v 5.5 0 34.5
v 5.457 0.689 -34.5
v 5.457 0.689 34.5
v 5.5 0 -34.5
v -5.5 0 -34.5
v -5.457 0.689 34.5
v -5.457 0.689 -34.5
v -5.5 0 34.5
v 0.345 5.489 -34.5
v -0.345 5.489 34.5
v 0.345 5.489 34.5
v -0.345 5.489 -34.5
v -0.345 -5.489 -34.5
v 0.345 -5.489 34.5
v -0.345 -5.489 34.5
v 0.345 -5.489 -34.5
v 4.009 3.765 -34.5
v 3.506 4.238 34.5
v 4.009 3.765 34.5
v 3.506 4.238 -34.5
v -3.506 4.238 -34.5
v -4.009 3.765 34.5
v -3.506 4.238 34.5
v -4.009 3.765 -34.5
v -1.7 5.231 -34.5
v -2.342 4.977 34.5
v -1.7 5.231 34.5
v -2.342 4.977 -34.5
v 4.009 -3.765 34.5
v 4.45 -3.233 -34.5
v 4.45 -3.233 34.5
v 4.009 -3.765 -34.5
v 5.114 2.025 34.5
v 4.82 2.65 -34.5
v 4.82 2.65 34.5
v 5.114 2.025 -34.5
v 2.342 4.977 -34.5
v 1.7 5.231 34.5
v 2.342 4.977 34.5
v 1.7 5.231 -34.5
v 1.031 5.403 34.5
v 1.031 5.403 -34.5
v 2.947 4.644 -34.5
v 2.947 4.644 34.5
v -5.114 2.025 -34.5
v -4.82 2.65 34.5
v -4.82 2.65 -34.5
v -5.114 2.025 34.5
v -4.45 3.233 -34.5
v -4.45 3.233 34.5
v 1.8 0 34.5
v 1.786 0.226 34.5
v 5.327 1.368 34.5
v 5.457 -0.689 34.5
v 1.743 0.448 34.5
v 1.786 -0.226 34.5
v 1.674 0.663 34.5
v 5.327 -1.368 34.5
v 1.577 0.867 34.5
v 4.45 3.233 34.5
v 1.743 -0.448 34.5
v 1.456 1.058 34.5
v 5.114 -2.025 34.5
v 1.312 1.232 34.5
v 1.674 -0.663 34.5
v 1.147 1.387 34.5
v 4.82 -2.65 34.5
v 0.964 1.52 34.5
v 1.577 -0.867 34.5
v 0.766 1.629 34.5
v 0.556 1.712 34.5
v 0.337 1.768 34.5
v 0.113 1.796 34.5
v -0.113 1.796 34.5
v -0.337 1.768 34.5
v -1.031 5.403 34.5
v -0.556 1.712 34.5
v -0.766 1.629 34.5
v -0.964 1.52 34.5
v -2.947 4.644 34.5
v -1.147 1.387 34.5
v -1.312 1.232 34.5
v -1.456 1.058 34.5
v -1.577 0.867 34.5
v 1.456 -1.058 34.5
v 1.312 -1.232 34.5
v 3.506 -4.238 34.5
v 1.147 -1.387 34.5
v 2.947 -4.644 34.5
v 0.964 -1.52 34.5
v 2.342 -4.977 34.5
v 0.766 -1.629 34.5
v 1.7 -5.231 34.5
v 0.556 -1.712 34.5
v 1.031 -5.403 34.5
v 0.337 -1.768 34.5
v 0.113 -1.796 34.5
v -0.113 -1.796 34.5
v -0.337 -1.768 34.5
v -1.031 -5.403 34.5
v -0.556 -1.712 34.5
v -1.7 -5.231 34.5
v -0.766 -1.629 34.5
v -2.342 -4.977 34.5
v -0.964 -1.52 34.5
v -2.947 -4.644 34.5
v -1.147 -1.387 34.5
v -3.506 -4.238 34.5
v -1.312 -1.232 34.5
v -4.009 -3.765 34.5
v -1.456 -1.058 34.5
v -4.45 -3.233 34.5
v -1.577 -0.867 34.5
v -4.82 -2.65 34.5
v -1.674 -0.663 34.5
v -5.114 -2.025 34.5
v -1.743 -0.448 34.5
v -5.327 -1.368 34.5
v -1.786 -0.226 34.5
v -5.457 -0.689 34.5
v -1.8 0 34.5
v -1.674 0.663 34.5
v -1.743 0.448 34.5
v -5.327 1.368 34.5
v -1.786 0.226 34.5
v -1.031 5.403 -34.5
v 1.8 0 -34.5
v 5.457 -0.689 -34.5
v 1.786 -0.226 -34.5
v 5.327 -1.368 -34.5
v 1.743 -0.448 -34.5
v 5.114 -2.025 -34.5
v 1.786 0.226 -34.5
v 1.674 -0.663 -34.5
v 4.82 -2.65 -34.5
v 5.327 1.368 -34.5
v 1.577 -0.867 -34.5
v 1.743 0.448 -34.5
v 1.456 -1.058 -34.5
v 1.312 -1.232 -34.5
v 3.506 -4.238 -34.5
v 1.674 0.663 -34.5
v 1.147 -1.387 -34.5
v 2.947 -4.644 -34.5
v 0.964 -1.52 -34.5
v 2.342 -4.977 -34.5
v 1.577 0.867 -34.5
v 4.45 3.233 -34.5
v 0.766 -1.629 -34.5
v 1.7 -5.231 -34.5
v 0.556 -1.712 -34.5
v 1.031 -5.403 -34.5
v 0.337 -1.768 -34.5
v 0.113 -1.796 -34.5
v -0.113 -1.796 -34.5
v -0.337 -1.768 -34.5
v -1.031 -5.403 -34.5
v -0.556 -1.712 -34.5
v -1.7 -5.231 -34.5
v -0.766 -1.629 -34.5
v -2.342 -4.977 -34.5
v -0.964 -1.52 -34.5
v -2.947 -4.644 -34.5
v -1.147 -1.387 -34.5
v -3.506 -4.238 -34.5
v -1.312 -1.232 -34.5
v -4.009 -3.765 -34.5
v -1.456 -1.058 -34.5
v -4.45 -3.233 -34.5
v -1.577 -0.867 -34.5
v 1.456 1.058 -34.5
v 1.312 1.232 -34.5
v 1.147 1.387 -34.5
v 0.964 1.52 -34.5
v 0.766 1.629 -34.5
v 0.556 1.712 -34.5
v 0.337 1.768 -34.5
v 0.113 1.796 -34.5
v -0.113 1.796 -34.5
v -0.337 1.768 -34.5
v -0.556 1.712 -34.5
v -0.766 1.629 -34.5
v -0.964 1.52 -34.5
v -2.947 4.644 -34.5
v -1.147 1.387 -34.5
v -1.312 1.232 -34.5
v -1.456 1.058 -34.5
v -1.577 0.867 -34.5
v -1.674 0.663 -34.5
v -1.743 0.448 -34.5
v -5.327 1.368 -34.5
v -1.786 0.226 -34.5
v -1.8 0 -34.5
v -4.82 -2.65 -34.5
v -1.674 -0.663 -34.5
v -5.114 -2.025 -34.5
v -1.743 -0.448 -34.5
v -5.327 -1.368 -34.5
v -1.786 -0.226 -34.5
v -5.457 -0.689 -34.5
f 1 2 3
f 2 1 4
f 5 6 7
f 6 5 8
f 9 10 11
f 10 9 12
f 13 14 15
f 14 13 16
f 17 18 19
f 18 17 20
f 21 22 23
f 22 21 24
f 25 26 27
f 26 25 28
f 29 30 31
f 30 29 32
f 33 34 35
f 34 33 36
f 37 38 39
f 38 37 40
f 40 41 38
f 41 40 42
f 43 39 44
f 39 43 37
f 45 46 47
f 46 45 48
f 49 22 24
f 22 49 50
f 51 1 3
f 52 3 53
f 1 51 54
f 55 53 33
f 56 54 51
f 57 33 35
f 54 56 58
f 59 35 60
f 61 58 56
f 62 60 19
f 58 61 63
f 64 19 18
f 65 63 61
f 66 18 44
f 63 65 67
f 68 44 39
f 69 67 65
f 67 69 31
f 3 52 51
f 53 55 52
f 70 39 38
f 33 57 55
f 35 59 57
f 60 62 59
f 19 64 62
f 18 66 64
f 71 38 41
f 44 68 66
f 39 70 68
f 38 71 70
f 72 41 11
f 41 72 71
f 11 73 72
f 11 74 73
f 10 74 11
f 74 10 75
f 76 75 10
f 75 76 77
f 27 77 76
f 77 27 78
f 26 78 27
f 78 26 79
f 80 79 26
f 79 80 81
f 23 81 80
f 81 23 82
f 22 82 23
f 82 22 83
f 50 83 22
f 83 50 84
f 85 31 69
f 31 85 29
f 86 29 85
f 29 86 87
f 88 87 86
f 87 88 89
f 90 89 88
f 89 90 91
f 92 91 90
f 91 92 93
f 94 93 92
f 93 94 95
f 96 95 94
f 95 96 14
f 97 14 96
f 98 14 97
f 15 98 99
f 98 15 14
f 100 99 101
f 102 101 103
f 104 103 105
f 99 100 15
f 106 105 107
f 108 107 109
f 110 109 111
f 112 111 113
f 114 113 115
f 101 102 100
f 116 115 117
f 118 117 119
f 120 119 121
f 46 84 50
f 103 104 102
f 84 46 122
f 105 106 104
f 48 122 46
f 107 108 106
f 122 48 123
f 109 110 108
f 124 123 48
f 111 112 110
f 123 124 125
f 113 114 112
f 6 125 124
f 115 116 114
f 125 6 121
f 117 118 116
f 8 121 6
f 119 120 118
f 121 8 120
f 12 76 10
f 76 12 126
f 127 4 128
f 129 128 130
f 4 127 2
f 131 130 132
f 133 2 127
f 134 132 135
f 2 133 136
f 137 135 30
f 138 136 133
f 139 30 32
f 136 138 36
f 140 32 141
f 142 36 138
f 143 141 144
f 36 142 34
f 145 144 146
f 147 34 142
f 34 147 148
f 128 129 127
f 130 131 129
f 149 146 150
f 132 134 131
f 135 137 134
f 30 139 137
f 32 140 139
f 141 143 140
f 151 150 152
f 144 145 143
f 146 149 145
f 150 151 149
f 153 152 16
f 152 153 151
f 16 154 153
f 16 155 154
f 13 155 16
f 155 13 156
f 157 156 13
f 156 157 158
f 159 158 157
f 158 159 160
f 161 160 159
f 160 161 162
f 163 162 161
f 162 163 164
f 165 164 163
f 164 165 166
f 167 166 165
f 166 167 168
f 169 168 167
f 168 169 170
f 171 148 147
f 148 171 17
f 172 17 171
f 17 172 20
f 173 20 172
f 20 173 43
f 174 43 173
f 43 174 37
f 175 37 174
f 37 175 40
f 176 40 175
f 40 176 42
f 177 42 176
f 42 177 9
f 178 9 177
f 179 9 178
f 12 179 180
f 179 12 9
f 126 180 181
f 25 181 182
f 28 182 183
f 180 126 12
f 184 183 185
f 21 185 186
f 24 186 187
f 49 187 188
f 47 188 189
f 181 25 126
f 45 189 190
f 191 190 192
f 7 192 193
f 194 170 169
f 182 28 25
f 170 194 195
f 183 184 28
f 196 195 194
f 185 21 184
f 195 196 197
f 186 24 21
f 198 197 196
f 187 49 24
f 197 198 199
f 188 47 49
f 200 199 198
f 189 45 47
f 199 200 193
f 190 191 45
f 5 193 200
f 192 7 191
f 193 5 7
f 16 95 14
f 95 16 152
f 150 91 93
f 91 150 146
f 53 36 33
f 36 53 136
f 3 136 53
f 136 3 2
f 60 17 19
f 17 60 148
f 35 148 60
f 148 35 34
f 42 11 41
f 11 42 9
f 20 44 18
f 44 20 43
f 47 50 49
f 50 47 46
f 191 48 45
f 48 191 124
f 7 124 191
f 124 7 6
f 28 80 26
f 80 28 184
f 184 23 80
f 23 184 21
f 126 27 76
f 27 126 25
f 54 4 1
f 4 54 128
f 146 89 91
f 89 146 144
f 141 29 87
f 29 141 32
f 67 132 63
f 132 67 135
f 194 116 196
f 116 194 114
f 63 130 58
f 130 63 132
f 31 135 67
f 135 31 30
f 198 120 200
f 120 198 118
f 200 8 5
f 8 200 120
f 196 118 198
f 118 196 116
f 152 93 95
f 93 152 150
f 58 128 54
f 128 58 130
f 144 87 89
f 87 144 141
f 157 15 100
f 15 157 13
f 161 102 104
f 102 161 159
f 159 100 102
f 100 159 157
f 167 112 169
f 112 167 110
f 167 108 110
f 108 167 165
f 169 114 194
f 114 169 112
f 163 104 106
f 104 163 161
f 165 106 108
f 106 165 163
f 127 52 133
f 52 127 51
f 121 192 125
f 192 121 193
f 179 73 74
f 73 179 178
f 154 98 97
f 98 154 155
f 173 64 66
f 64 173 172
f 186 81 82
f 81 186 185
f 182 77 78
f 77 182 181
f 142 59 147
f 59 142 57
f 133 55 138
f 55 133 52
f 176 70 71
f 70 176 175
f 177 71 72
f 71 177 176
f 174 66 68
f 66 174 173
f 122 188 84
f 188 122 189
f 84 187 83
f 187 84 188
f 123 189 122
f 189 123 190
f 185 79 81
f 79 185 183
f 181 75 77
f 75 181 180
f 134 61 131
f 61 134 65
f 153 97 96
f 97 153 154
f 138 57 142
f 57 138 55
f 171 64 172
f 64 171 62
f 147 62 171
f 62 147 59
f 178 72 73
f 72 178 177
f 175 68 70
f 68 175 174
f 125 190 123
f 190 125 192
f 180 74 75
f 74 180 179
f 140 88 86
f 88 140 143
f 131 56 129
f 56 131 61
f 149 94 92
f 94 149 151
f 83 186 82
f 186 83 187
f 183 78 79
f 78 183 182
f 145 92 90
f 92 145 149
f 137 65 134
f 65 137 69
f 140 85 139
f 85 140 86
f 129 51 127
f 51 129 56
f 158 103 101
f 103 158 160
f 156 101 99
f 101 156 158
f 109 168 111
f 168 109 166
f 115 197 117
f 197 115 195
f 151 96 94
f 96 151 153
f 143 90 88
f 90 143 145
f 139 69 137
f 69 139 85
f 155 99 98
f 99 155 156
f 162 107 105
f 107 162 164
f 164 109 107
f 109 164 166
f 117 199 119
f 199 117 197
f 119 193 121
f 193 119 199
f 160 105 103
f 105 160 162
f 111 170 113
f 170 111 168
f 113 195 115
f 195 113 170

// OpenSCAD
$fn = 50;


difference() {
	union() {
		translate(v = [0, 0, -34.5000000000]) {
			cylinder(h = 69, r = 5.5000000000);
		}
	}
	union() {
		#translate(v = [0, 0, -100.0000000000]) {
			cylinder(h = 200, r = 1.8000000000);
		}
	}
}
